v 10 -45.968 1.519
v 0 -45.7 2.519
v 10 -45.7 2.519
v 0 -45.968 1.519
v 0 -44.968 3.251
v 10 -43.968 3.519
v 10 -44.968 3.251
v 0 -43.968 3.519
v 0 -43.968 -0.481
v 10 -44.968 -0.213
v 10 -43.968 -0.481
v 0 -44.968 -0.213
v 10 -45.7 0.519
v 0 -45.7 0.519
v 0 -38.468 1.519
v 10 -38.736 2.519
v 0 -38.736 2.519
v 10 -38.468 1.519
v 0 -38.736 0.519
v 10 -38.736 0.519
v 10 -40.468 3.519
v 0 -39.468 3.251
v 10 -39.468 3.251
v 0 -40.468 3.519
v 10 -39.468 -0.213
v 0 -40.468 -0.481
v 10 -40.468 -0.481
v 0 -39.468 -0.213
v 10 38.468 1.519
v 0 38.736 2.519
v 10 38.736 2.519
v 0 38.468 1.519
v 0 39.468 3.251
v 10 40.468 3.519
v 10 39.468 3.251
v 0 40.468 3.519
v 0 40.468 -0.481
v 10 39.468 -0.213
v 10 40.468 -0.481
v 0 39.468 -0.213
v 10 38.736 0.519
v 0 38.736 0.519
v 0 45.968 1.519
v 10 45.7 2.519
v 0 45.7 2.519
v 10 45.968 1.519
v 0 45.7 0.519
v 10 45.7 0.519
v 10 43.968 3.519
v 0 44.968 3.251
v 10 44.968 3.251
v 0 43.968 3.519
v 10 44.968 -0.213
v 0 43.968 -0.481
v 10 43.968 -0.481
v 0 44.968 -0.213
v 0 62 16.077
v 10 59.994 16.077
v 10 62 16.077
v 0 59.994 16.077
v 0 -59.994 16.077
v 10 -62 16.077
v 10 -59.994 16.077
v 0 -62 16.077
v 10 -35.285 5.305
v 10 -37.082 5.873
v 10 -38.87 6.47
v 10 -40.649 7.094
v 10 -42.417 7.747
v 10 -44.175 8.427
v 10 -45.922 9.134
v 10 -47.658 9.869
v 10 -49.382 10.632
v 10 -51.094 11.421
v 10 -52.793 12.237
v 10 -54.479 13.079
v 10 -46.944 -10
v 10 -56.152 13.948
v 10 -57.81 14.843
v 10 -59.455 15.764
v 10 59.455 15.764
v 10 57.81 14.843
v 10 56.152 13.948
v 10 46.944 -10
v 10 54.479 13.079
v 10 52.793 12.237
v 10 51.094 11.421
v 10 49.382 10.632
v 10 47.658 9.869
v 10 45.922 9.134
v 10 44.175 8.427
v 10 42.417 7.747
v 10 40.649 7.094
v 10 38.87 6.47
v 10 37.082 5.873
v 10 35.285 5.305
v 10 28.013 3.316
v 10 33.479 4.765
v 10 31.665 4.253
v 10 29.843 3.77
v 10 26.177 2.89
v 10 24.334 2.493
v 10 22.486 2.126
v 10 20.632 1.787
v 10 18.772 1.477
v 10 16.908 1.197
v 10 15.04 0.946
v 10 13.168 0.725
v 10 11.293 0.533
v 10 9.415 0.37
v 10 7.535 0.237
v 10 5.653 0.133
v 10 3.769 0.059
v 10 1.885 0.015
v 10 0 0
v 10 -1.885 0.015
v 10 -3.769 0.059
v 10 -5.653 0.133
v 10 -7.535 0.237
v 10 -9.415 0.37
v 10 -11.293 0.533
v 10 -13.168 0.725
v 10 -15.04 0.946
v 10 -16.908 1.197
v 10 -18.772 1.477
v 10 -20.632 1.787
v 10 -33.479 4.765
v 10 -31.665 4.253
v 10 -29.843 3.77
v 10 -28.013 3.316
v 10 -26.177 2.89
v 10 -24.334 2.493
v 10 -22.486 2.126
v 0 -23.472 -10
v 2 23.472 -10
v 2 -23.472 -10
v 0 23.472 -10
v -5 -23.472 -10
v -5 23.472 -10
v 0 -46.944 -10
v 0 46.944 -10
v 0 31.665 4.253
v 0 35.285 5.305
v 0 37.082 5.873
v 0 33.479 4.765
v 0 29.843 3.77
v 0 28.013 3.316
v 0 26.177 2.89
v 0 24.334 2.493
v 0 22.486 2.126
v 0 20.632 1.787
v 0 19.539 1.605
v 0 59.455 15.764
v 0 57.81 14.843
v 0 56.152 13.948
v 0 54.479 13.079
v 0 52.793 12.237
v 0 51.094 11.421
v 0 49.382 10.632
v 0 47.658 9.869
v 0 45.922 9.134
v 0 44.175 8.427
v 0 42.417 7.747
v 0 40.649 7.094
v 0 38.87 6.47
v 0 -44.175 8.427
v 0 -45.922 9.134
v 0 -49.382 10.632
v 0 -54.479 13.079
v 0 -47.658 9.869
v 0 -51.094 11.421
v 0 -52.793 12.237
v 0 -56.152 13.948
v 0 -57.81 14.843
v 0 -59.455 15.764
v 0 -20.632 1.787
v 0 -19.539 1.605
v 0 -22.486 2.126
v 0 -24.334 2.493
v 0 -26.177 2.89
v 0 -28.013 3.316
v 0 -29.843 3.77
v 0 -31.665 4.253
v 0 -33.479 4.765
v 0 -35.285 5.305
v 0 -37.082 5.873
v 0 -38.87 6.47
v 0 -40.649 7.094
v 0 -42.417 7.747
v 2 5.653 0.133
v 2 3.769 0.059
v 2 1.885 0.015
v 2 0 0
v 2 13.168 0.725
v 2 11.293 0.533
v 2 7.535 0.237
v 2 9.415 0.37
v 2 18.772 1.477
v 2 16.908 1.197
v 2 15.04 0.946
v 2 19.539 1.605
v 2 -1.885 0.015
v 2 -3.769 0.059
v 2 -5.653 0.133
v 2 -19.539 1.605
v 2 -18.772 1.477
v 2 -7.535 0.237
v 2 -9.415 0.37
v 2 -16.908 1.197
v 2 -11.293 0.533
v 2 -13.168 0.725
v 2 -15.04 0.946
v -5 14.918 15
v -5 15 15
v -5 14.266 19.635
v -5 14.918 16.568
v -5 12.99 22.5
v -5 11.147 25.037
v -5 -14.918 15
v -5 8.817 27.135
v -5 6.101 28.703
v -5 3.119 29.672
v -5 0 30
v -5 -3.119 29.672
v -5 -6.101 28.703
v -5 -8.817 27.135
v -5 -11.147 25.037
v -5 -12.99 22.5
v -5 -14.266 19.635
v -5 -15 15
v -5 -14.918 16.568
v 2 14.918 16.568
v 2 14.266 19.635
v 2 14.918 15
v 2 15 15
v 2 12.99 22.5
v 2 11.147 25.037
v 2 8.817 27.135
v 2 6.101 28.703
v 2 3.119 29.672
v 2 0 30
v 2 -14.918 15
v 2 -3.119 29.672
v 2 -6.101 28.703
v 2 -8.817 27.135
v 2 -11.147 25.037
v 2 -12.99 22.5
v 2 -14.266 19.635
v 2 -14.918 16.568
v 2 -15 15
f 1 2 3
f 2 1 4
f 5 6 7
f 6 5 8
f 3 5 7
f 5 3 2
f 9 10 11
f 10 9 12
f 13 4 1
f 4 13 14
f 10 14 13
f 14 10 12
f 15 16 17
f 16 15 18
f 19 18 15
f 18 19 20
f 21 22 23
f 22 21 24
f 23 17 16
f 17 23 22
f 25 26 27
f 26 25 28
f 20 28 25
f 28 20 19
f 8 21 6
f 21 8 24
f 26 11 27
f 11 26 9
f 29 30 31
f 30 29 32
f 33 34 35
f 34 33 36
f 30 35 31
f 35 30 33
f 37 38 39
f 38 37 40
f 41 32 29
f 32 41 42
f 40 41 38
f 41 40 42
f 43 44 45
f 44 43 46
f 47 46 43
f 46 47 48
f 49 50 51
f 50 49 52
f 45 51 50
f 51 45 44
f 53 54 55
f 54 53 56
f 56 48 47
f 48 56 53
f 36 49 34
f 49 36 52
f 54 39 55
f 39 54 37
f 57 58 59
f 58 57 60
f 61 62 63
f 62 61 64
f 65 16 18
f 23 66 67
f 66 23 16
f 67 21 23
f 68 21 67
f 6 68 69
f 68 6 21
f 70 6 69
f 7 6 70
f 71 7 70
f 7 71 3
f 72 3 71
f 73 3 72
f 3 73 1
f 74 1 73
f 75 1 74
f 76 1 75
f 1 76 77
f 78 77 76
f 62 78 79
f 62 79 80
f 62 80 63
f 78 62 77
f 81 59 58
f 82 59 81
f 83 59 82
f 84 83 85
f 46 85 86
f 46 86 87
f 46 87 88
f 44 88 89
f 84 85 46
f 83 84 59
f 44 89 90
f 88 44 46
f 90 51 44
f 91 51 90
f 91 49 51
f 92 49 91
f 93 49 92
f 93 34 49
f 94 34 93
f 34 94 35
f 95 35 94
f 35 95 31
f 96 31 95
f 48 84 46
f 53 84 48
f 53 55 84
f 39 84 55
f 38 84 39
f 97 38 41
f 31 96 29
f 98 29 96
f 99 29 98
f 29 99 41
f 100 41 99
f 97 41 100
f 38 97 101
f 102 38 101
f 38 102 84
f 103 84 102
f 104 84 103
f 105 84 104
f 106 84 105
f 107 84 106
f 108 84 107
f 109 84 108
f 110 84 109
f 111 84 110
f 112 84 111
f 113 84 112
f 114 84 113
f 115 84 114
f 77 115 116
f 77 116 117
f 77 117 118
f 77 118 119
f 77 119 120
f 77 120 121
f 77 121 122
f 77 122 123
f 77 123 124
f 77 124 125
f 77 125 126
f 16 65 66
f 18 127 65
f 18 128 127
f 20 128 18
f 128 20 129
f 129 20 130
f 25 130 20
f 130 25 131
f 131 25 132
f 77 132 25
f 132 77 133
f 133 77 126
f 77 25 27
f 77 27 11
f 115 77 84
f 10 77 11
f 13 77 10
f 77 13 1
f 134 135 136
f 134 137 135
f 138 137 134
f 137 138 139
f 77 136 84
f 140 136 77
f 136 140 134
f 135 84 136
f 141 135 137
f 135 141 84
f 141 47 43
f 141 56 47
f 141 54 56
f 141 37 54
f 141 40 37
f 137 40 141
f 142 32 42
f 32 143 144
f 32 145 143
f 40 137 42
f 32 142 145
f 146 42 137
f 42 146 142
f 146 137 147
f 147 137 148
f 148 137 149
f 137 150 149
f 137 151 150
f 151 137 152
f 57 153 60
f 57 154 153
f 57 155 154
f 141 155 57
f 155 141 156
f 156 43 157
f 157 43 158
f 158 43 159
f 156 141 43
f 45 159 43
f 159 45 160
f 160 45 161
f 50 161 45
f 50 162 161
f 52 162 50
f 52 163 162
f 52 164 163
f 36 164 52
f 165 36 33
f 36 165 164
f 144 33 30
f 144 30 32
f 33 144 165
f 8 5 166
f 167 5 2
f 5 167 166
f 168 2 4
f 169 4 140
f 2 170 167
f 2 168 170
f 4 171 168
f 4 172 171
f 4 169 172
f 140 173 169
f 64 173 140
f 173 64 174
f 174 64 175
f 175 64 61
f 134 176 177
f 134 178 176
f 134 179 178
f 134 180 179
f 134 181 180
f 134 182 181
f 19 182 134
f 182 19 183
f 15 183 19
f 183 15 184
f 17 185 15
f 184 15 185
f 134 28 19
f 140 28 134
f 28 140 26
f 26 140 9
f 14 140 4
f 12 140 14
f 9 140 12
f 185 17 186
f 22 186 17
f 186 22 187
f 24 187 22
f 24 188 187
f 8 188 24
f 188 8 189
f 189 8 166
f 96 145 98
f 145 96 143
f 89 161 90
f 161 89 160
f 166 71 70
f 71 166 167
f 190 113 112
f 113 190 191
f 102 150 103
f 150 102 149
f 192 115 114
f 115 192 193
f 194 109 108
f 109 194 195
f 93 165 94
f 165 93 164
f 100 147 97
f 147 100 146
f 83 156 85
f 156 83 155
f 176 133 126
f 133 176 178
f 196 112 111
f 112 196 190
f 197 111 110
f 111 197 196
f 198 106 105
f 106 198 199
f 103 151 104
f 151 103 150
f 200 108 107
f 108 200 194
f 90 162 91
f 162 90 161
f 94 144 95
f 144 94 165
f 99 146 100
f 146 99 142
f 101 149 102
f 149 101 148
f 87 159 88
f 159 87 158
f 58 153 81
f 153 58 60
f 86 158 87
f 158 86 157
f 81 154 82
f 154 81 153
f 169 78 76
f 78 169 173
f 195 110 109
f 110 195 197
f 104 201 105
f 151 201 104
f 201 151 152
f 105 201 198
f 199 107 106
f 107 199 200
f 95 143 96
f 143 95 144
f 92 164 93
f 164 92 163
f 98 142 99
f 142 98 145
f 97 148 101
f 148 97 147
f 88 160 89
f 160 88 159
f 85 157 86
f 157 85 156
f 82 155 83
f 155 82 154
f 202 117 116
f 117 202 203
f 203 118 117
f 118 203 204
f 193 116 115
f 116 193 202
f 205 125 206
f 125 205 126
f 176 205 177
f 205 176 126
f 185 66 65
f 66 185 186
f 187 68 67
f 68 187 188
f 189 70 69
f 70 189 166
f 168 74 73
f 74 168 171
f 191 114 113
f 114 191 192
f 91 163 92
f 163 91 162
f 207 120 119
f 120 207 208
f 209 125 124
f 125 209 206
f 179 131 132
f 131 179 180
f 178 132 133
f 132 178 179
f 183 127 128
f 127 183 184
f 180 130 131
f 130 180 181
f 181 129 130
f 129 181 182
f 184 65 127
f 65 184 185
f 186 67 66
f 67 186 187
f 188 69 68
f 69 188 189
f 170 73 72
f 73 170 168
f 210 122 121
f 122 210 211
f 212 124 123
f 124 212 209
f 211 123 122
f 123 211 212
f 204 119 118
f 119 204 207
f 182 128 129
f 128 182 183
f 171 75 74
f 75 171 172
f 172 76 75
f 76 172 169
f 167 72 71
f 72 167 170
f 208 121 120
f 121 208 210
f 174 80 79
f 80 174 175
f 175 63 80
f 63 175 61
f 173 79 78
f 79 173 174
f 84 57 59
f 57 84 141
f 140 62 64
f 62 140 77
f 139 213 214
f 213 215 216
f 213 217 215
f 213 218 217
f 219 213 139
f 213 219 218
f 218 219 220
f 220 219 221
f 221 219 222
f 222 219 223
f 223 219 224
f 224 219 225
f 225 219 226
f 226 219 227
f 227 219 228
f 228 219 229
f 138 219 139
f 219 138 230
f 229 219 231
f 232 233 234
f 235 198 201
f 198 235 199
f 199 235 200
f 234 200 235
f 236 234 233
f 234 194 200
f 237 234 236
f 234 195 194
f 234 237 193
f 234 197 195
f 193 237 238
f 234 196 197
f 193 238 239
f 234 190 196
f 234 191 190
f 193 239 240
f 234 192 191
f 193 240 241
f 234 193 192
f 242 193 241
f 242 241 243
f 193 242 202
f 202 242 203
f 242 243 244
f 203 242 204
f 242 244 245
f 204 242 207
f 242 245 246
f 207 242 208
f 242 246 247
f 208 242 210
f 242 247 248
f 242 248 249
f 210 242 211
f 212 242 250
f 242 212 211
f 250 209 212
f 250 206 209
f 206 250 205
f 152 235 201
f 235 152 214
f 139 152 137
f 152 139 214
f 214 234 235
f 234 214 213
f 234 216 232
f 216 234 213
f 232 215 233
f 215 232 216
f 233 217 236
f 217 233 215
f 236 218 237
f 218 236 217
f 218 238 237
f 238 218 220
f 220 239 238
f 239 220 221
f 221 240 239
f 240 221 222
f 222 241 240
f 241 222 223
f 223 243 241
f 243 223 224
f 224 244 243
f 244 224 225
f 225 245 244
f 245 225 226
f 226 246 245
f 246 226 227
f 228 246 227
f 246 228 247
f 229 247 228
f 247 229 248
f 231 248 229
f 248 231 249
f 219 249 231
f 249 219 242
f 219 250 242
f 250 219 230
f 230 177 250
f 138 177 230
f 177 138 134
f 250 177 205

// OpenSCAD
// parametric bed retainer and FSR mount for delta printer,
// mounts at the three corners of the frame

// set values
mount_width = 10;
retainer_height = 10;
fsr_mount_thickness = 7;
// height of the fsr mounting tab above the frame beams
fsr_mount_lift = 2;
screw_width = 3;
slot_width = 6;

//measured values
// bed_radius = 120;
bed_radius = 120;
// beam_length = 270;
beam_length = 270;
beam_width = 15;
beam_height = 15;
fsr_width = 20;
// bracket_offset: using two steel rulers, measure the distance from the end
// of the beam to the point where its outside edge would meet that of its neighbor 
// bracket_offset = 48;
bracket_offset = 48;

//calculated values
frame_side = beam_length + 2*bracket_offset;
slug_offset = bed_radius*sqrt(3)/2;
slug_width = bed_radius - bed_radius*sqrt(3)/2 + mount_width;
triangle_radius = bed_radius/sqrt(3);
frame_radius = frame_side/sqrt(3);

rotate([0,90,0])
translate([-bed_radius,0,0])
union(){

// for debug, show frame (set to true to show or false to hide)
// frame is idealized, ignores end bracket truncation
show_frame = false;
if (show_frame) {
    difference() {
        translate([0,0,-beam_height])
        // a cylinder with three faces is an equilateral triangle! Who knew!
            cylinder(r = frame_radius, h = beam_height, $fn = 3);
        translate([0,0,-beam_height-1])
            cylinder(r = frame_radius-2*beam_width, h = beam_height+2, $fn = 3);
    }
}


// mount body
intersection() {
    translate([0,0,0])
            cylinder(r = frame_side/sqrt(3), h = retainer_height, $fn = 3);
    difference() {
        // "slug"
        translate([slug_offset,-frame_side/2,0])
            cube([slug_width,frame_side,retainer_height]);
        // remove bed
        translate([0,0,-retainer_height/2])
            cylinder(r=bed_radius,h=2*retainer_height, $fn=400);
        // remove back side
        translate([bed_radius + mount_width,-bed_radius/2,-retainer_height/2])
            cube([bed_radius,bed_radius,2*retainer_height]);
        // remove screw sliders
        // faking it on the width-wise position of the screw slots
        // this is midway between the middle of the mount body and the edge of the bed
        xo = -(slug_offset + slug_width/2 + bed_radius)/2;
        hy = (frame_radius - bed_radius)/sqrt(3) - beam_width/2 - slot_width/2;
        for (yo = [-hy, hy]) {
            translate([-xo,yo,-1])
                rotate([0,0,90])
                    slotted_hole(r=(screw_width+1)/2, l=beam_width/2, h=retainer_height+2);
        }
    }
}
// add the FSR shelf
tab_front_y_offset = fsr_width * 0.75;
tab_back_y_offset = 0.5*(frame_radius-bed_radius-mount_width)/sqrt(3);
if (tab_back_y_offset > 4*tab_front_y_offset) {
    tab_back_y_offset = 4*tab_front_y_offset;
}
tab_back_x = -(bed_radius + mount_width);
tab_front_x = -(bed_radius - tab_front_y_offset);

translate([0,0,-fsr_mount_thickness+fsr_mount_lift])
    linear_extrude(height=fsr_mount_thickness) {
        union(){
            polygon(points=[[-tab_back_x,tab_back_y_offset],[-tab_back_x,-tab_back_y_offset],[-tab_front_x,-tab_front_y_offset],[-tab_front_x,tab_front_y_offset]]);
            translate([(bed_radius - tab_front_y_offset),0,0])
                circle(r=tab_front_y_offset);
        }
    }
}



module slotted_hole(r, l, h) {
    d = l/2-r;
    union(){
        for (os = [-d, d]) {
            translate([os,0,0])
                cylinder(r=r, h=h, $fn=12);
        }
        translate([-d,-r,0])
            cube([l-2*r,2*r,h]);
    }
}
